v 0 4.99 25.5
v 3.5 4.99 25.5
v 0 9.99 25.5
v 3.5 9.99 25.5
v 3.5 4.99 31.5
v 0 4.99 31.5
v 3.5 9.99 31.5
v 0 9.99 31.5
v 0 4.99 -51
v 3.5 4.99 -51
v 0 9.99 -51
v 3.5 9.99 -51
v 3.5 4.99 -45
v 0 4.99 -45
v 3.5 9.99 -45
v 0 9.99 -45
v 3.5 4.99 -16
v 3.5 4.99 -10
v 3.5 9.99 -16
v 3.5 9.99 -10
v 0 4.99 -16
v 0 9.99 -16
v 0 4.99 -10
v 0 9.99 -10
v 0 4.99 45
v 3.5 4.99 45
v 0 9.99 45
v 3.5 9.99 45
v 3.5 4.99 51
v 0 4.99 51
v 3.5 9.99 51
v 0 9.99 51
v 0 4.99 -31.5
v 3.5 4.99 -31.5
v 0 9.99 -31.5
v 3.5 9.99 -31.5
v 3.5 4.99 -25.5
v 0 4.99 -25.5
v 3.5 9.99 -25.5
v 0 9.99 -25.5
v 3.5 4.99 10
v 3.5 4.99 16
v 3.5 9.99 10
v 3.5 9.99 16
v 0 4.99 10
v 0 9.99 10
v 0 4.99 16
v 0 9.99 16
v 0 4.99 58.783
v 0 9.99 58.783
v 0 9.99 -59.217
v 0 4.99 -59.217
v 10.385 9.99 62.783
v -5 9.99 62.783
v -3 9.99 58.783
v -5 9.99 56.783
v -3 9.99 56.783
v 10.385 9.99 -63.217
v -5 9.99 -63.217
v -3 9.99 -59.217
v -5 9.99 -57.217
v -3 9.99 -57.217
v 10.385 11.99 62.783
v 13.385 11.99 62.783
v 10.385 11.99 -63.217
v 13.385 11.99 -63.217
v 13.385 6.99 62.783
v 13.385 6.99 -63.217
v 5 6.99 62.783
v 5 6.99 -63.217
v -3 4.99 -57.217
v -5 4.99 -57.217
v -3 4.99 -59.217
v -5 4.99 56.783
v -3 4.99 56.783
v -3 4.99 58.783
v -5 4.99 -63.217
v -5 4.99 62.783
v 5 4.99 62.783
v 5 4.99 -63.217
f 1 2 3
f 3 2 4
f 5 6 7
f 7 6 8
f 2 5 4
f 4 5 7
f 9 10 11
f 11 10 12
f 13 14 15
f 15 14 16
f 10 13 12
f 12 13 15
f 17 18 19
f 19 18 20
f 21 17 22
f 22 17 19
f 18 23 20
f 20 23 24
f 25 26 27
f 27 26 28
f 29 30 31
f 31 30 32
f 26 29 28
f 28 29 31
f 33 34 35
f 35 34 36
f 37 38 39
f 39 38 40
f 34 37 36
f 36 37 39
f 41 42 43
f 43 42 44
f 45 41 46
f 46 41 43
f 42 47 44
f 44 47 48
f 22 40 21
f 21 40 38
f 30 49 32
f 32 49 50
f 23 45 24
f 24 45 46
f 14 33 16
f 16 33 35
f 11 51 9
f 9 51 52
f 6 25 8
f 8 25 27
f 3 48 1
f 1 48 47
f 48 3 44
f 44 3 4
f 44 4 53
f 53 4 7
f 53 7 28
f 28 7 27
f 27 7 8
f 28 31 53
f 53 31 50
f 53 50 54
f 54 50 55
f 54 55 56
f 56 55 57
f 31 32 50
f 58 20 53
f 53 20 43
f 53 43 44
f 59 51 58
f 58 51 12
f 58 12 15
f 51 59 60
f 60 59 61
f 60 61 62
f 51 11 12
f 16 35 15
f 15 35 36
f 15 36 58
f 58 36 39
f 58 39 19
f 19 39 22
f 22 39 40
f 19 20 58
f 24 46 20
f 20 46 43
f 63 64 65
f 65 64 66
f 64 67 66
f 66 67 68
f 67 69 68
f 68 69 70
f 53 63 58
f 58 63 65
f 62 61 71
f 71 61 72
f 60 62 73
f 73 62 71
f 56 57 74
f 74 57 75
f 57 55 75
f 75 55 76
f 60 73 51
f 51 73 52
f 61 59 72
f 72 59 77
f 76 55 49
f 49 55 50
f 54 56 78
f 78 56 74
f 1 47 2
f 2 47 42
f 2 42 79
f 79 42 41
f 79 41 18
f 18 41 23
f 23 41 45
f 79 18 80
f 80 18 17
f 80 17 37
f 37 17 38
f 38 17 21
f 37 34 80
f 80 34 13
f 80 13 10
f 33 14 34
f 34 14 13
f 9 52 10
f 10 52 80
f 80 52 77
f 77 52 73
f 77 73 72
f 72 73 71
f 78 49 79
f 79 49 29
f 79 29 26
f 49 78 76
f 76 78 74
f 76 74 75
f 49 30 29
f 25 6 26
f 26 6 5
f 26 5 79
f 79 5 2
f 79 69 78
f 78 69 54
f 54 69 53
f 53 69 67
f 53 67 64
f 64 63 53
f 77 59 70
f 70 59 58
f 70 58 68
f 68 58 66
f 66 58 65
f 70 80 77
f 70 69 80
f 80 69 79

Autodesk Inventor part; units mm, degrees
ref_plane "YZ Plane" through (0, 0, 0) normal (1, 0, 0) x (0, 1, 0)
ref_plane "XZ Plane" through (0, 0, 0) normal (0, 1, 0) x (-1, 0, 0)
ref_plane "XY Plane" through (0, 0, 0) normal (0, 0, 1) x (1, 0, 0)
sketch "Sketch1" plane through (0, 0, 0) normal (1, 0, 0) x (0, 1, 0)
  line L0 (4.9903, 62.7832) -> (9.9903, 62.7832)
  line L1 (9.9903, 62.7832) -> (9.9903, -63.2168)
  line L2 (9.9903, -63.2168) -> (4.9903, -63.2168)
  line L3 (4.9903, -63.2168) -> (4.9903, 62.7832)
  point P0 (0, 0)
  dimension "d0" = 126
  dimension "d1" = 5
extrude "Extrusion1" add sketch "Sketch1" along normal blind 5
sketch "Sketch2" plane through (0, 0, 0) normal (-1, 0, 0) x (0, 0, 1)
  line L0 (-63.2168, 9.9903) -> (62.7832, 9.9903) projected
  line L1 (62.7832, 4.9903) -> (-63.2168, 4.9903) projected
  line L2 (62.7832, 9.9903) -> (58.7832, 9.9903)
  line L3 (58.7832, 9.9903) -> (58.7832, 4.9903)
  line L4 (58.7832, 4.9903) -> (62.7832, 4.9903)
  line L5 (62.7832, 4.9903) -> (62.7832, 9.9903)
  line L6 (-63.2168, 4.9903) -> (-63.2168, 9.9903) projected
  line L7 (-63.2168, 9.9903) -> (-59.2168, 9.9903)
  line L8 (-59.2168, 9.9903) -> (-59.2168, 4.9903)
  line L9 (-59.2168, 4.9903) -> (-63.2168, 4.9903)
  line L10 (-63.2168, 4.9903) -> (-63.2168, 9.9903)
  point P0 (0, 0)
  dimension "d4" = 4
  dimension "d5" = 4
extrude "Extrusion2" add sketch "Sketch2" along normal blind 5 contours L0 L8 L1 L6 | L0 L5 L1 L3
sketch "Sketch3" plane through (5, 9.9903, 62.7832) normal (0, 1, 0) x (1, 0, 0)
  line L0 (-10, 4) -> (-10, 0) projected
  line L1 (-10, 4) -> (-8, 4)
  line L2 (-8, 4) -> (-8, 6)
  line L3 (-8, 6) -> (-10, 6)
  line L4 (-10, 6) -> (-10, 4)
  line L5 (-10, 122) -> (-10, 126) projected
  line L6 (-10, 122) -> (-8, 122)
  line L7 (-8, 122) -> (-8, 120)
  line L8 (-8, 120) -> (-10, 120)
  line L9 (-10, 120) -> (-10, 122)
  point P0 (-5, 62.7832)
  dimension "d8" = 2
  dimension "d9" = 2
  dimension "d37" = 2
extrude "Extrusion3" add sketch "Sketch3" against normal blind 5
sketch "Sketch4" plane through (5, 4.9903, -63.2168) normal (0, 0, -1) x (-1, 0, 0)
  line L0 (10, 5) -> (0, 5) projected
  line L1 (0, 5) -> (-5.3853, 5)
  line L2 (-5.3853, 5) -> (-5.3853, 7)
  line L3 (-5.3853, 7) -> (-8.3853, 7)
  line L4 (-8.3853, 7) -> (-8.3853, 2)
  line L5 (-8.3853, 2) -> (0, 2)
  line L6 (0, 0) -> (0, 5) projected
  line L7 (0, 5) -> (0, 2)
  point P0 (5, -4.9903)
  dimension "d12" = 3
  dimension "d13" = 3
  dimension "d14" = 2
  dimension "d15" = 5
extrude "Extrusion4" add sketch "Sketch4" against normal up to surface (126 mm away)
sketch "Sketch5" plane through (0, 9.9903, 58.7832) normal (0, 1, 0) x (1, 0, 0)
  line L0 (-4.4204, 27.2832) -> (3.5, 27.2832)
  line L1 (3.5, 27.2832) -> (3.5, 33.2832)
  line L2 (3.5, 33.2832) -> (-4.4204, 33.2832)
  line L3 (-4.4204, 33.2832) -> (-4.4204, 27.2832)
  line L4 (-4.4204, 84.2832) -> (3.5, 84.2832)
  line L5 (3.5, 84.2832) -> (3.5, 90.2832)
  line L6 (3.5, 90.2832) -> (-4.4204, 90.2832)
  line L7 (-4.4204, 90.2832) -> (-4.4204, 84.2832)
  line L8 (10.3853, 122) -> (10.3853, -4) projected
  line L9 (-4.4204, 7.7832) -> (3.5, 7.7832)
  line L10 (3.5, 7.7832) -> (3.5, 13.7832)
  line L11 (3.5, 13.7832) -> (-4.4204, 13.7832)
  line L12 (-4.4204, 13.7832) -> (-4.4204, 7.7832)
  line L13 (-4.4204, 103.7832) -> (3.5, 103.7832)
  line L14 (3.5, 103.7832) -> (3.5, 109.7832)
  line L15 (3.5, 109.7832) -> (-4.4204, 109.7832)
  line L16 (-4.4204, 109.7832) -> (-4.4204, 103.7832)
  line L17 (0, 118) -> (0, 0) projected
  line L18 (-4.4204, 42.7832) -> (3.5, 42.7832)
  line L19 (3.5, 42.7832) -> (3.5, 48.7832)
  line L20 (3.5, 48.7832) -> (-4.4204, 48.7832)
  line L21 (-4.4204, 48.7832) -> (-4.4204, 42.7832)
  line L22 (-4.4204, 68.7832) -> (3.5, 68.7832)
  line L23 (3.5, 68.7832) -> (3.5, 74.7832)
  line L24 (3.5, 74.7832) -> (-4.4204, 74.7832)
  line L25 (-4.4204, 74.7832) -> (-4.4204, 68.7832)
  point P0 (0, 58.7832)
  dimension "d18" = 6
  dimension "d20" = 6
  dimension "d21" = 25.5
  dimension "d22" = 25.5
  dimension "d25" = 6
  dimension "d26" = 6
  dimension "d27" = 45
  dimension "d28" = 45
  dimension "d31" = 3.5
  dimension "d32" = 3.5
  dimension "d33" = 6
  dimension "d34" = 6
  dimension "d35" = 10
  dimension "d36" = 10
extrude "Extrusion5" cut sketch "Sketch5" against normal blind 10
properties part number "scratcher"
